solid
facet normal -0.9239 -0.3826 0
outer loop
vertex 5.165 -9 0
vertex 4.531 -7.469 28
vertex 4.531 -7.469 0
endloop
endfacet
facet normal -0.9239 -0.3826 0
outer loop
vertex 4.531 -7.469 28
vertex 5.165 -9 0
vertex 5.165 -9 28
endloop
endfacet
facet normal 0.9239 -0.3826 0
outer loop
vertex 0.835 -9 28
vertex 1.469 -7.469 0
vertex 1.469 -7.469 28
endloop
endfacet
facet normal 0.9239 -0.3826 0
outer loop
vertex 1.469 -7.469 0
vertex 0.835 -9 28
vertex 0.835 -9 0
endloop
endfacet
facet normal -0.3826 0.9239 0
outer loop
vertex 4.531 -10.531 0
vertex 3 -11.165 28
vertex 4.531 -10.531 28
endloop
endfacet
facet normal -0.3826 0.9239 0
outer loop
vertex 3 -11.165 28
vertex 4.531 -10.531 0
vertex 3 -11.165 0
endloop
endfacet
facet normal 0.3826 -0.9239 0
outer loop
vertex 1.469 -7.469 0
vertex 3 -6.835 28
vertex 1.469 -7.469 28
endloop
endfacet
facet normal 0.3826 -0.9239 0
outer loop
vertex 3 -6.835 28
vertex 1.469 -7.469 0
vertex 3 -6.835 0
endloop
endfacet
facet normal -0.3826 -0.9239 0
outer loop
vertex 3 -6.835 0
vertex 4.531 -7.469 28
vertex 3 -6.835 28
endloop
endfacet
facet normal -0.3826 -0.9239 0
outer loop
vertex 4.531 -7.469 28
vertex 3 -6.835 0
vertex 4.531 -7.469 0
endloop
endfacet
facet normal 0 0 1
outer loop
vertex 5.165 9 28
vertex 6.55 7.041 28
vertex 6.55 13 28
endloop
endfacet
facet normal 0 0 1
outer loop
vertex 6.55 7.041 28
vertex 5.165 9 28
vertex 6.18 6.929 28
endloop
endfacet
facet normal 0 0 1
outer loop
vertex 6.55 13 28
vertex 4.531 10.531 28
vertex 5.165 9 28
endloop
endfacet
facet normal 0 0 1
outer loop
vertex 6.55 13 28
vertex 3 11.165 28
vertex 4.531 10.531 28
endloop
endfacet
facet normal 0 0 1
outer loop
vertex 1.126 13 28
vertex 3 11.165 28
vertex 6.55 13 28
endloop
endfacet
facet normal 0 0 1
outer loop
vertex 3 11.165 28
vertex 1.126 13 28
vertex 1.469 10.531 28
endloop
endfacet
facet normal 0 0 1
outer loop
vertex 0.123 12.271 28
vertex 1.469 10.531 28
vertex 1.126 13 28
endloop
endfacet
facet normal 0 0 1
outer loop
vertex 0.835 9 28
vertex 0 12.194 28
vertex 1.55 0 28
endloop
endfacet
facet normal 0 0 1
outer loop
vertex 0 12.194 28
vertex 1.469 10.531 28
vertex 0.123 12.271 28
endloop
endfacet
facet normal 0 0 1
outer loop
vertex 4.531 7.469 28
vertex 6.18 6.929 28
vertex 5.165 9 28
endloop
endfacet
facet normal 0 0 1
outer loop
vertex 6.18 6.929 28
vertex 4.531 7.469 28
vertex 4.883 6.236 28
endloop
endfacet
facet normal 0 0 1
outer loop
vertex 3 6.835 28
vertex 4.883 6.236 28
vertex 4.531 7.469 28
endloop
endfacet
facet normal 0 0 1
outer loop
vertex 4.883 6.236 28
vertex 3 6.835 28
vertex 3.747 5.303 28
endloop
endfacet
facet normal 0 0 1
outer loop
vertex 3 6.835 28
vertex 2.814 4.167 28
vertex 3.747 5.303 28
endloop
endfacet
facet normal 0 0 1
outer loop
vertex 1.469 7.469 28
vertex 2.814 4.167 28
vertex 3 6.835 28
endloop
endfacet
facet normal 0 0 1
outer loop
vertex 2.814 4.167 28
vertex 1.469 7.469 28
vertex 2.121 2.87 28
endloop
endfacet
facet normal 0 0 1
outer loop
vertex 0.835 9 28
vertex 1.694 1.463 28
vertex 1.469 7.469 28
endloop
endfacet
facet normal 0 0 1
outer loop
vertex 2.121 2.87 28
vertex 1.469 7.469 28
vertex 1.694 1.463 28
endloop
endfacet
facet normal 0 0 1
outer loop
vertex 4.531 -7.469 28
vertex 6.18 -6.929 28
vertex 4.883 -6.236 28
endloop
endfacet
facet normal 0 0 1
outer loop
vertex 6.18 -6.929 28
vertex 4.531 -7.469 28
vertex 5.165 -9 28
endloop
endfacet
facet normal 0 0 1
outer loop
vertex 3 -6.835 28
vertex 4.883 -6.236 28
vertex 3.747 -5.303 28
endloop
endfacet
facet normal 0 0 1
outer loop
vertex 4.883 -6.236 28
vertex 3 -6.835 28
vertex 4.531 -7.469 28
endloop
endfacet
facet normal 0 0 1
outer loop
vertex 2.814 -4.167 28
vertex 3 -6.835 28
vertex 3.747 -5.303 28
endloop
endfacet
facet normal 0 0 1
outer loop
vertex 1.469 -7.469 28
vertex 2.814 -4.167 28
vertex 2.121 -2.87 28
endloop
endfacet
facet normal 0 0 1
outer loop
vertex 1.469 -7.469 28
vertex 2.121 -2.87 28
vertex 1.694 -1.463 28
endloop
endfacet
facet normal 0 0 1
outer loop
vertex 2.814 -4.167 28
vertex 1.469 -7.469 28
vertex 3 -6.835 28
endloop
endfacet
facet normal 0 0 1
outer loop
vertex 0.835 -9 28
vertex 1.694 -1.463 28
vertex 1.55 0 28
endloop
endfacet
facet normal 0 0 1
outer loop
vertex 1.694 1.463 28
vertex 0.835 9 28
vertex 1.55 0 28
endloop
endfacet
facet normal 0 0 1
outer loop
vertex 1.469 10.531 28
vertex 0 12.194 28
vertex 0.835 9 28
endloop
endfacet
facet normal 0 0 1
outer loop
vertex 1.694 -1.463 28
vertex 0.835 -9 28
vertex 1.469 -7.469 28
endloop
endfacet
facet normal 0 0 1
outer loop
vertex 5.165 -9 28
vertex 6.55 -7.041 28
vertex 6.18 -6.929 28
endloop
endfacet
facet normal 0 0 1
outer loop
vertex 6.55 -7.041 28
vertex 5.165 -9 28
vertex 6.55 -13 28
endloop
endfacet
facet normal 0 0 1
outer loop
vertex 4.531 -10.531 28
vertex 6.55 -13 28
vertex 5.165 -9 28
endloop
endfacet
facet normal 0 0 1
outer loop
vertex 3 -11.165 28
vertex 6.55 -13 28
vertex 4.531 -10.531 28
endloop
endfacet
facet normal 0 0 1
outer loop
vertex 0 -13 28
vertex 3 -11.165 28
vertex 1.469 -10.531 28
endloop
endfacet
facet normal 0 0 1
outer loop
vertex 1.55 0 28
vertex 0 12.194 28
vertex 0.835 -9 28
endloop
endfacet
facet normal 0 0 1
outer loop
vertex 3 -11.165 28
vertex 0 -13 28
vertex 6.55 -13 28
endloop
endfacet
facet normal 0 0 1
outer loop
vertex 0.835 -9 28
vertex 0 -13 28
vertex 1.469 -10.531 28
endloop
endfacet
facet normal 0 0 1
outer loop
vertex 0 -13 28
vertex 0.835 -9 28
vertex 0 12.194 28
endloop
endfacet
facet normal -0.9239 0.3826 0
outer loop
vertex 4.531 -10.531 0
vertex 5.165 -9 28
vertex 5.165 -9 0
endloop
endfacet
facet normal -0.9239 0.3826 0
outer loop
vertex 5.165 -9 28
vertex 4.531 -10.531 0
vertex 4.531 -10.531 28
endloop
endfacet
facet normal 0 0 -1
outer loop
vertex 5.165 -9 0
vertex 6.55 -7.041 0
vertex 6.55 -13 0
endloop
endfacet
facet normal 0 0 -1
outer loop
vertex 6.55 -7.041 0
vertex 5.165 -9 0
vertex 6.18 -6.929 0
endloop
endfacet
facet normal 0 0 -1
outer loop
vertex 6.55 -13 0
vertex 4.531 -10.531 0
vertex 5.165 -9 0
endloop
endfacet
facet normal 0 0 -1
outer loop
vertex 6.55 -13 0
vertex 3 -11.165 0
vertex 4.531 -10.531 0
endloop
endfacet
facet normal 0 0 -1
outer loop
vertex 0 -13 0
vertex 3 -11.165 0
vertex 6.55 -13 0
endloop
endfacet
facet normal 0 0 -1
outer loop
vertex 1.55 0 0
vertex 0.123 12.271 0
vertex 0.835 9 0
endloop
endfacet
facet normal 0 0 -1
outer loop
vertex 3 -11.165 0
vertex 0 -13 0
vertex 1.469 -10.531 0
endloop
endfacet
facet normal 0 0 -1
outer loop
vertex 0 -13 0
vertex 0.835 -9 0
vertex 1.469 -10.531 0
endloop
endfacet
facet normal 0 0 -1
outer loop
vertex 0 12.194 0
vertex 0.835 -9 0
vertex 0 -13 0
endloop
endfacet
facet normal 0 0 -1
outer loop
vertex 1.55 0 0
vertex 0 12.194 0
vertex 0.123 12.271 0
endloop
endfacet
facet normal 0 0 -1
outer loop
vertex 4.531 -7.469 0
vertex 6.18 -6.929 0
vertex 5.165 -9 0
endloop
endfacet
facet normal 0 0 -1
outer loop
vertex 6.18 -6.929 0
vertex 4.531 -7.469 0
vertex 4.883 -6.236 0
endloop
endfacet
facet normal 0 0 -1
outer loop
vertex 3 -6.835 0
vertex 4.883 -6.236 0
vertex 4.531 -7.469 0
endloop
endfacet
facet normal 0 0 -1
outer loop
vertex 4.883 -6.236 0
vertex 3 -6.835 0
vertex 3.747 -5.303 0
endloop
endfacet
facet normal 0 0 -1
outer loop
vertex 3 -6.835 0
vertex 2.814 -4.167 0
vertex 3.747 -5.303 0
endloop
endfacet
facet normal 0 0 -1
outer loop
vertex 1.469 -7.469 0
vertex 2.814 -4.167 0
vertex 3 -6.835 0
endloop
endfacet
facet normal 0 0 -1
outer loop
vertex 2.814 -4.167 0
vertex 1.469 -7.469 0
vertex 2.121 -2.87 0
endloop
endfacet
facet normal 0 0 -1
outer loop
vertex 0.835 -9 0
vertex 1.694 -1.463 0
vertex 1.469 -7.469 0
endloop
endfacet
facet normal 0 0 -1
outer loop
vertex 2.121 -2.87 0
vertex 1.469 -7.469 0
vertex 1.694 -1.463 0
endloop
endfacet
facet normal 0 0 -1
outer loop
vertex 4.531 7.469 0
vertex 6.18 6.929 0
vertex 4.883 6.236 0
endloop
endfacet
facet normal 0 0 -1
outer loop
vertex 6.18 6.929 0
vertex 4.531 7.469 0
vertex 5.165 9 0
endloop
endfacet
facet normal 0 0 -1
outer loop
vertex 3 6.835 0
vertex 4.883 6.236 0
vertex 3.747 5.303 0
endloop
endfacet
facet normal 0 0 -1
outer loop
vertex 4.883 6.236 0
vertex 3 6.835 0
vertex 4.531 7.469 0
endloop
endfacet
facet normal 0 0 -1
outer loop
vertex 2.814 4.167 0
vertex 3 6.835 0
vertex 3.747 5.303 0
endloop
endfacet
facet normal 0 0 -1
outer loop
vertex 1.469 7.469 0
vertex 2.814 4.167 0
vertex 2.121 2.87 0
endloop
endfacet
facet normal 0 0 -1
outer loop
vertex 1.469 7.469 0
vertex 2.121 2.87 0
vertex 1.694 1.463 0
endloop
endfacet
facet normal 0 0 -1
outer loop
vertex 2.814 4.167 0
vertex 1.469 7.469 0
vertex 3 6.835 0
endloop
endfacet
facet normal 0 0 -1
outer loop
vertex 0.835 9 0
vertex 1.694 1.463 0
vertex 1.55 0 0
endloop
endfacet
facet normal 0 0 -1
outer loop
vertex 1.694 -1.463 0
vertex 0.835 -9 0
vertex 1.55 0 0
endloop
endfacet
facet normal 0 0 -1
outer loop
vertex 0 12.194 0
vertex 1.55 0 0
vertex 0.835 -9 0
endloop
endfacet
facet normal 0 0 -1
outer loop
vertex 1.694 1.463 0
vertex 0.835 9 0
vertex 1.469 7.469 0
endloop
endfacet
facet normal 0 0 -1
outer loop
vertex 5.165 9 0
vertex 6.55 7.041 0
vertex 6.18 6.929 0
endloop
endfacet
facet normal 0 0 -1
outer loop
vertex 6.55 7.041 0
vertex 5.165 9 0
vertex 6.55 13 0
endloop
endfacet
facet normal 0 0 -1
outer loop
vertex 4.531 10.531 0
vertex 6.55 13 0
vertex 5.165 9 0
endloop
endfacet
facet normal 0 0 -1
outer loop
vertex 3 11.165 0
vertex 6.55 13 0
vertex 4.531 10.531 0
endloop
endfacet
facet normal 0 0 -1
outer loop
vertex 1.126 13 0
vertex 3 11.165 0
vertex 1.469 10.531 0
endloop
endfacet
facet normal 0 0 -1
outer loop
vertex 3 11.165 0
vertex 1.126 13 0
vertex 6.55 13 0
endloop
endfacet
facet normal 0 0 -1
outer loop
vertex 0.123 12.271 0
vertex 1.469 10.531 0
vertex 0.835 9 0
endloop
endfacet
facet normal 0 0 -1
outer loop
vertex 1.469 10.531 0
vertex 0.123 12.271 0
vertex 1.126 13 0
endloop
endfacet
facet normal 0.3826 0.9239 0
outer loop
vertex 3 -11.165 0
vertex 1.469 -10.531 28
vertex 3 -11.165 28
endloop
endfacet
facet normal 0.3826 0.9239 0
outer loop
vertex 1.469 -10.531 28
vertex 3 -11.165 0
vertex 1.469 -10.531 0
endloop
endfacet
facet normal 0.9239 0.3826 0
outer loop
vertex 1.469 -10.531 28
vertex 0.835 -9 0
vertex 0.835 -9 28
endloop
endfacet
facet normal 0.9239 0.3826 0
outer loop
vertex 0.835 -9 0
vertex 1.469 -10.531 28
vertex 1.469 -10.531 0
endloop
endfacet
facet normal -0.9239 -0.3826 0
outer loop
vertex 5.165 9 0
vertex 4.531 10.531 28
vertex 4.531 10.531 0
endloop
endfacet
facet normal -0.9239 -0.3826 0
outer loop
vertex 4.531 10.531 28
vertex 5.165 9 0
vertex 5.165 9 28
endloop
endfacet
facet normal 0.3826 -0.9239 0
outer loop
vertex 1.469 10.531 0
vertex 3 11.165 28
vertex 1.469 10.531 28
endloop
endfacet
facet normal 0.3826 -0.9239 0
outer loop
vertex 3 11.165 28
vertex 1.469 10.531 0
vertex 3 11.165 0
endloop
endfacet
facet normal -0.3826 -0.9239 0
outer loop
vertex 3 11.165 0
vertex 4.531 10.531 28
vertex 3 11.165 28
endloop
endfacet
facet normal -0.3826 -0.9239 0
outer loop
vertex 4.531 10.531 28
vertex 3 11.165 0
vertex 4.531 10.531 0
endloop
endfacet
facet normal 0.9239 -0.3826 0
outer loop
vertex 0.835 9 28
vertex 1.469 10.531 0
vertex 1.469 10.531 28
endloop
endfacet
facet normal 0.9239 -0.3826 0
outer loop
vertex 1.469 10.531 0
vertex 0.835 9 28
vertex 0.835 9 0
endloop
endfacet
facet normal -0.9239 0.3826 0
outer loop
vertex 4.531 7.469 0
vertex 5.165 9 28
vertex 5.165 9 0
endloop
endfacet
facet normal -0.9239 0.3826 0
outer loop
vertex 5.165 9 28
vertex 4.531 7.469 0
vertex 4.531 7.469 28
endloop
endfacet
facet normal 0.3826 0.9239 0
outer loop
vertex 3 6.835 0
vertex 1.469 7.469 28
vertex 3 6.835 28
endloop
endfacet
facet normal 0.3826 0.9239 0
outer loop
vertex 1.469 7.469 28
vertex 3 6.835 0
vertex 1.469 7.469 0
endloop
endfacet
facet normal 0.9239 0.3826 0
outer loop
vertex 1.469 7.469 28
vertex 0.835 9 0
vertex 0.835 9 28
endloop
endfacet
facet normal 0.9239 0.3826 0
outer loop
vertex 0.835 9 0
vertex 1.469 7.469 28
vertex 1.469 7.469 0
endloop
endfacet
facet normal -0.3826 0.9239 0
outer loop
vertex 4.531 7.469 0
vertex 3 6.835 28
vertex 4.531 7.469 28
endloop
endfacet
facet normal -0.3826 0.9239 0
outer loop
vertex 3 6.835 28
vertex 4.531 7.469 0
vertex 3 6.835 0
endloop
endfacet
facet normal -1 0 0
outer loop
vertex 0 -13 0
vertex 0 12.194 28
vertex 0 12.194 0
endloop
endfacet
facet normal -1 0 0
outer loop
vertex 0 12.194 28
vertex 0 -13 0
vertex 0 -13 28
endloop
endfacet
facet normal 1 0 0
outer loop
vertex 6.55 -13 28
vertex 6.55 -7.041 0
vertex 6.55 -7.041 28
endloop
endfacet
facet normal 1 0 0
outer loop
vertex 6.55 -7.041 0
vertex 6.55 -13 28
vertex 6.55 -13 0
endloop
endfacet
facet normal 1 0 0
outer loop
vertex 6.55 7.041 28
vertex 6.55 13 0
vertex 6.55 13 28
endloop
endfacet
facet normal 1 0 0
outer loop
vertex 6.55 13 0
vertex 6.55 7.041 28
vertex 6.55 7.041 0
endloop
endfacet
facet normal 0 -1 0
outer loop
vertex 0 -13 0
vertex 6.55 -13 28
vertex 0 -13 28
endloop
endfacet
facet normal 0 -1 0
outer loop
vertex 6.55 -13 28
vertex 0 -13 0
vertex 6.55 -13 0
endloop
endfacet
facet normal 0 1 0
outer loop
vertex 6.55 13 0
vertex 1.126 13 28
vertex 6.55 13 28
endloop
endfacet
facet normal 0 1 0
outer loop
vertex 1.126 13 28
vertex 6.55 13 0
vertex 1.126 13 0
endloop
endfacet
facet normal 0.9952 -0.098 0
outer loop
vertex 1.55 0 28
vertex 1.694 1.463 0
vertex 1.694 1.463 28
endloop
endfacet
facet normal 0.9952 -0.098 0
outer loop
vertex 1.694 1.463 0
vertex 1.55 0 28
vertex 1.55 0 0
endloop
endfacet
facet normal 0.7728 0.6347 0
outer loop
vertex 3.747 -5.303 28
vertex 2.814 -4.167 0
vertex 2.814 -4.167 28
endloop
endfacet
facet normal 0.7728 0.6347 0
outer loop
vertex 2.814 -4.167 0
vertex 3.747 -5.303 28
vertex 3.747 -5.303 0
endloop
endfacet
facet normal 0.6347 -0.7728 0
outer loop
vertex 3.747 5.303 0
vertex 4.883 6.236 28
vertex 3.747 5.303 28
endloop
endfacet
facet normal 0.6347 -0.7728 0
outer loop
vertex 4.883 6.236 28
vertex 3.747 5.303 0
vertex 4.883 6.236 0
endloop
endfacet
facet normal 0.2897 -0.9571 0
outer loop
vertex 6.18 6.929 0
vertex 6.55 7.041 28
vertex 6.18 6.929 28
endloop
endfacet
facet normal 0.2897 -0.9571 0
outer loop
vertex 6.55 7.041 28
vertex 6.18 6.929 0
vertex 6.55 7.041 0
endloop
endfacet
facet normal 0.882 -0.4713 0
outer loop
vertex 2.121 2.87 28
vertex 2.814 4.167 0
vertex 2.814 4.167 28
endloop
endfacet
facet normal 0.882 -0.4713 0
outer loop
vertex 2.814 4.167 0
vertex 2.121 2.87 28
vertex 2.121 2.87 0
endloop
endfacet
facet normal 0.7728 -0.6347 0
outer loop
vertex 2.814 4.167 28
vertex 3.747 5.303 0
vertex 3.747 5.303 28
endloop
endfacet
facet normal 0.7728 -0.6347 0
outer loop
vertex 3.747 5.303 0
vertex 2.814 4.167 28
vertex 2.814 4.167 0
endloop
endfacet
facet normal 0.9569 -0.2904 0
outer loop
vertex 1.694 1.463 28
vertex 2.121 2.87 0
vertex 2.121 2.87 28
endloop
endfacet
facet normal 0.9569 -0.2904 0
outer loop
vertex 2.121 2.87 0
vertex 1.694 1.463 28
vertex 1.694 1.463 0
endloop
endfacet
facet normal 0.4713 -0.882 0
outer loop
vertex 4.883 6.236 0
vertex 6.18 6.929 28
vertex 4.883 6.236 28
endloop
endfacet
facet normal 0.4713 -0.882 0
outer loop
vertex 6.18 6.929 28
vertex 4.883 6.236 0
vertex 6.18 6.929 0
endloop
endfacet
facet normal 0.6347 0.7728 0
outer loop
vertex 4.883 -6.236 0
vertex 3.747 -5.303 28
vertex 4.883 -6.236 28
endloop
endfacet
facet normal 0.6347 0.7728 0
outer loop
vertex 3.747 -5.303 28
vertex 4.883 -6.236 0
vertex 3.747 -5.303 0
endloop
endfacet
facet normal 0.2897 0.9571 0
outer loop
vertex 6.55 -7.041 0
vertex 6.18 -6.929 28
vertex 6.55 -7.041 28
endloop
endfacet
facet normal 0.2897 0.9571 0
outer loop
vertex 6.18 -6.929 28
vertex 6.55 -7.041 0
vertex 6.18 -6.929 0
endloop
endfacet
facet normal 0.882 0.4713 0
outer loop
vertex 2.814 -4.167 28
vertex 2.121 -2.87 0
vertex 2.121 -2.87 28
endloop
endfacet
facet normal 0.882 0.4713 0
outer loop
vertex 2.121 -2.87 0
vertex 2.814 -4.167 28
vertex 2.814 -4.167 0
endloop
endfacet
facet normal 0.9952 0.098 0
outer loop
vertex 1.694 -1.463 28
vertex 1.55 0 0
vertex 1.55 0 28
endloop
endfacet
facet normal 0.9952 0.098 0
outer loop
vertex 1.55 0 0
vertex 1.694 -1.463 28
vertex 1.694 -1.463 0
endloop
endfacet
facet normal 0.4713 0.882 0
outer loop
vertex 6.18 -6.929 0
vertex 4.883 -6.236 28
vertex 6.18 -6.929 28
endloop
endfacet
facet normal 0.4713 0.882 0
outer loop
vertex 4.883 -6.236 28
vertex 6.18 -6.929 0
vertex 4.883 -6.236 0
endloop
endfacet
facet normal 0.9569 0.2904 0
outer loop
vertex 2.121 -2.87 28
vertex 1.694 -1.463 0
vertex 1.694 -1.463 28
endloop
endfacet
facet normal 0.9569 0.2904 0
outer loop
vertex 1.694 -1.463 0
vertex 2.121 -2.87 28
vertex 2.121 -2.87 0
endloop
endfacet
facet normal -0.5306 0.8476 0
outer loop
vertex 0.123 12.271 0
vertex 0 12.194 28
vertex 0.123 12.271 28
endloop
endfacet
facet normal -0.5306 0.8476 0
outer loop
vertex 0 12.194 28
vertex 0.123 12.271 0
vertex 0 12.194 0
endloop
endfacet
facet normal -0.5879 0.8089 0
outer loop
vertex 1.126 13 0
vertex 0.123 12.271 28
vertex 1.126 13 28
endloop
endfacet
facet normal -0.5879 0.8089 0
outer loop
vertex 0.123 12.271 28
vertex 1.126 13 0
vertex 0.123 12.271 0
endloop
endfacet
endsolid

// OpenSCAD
// file: ../../trunctear.scad
//A module for truncated tear drops.

trunctear(1, 0.5, $fn = 90);

module trunctear(hei, radian, cent = false)
{
    linear_extrude(height = hei, center = cent)
        hull()
        {
            circle(r = radian);
            translate([0, radian/2])
                square([2*(radian*(2*cos(45)-1)), radian], center = true);
        }
}
// file: ../../polyhole.scad
// The Cylinder is dead! Long live the Cylinder!
// A module for a polyhole by radius, based on Nophead's work.

module polyhole(h, r, cent = false)
{
    n = max(round(4 * r), 3);
    cylinder(h = h, r = r / cos(180 / n), $fn = n, center = cent);
}
// main file
use<../../polyhole.scad>
use<../../trunctear.scad>

Spacer();

module Spacer()
{
    difference()
    {
        union()
        {
            translate([(60-(42.3+4.6))/4, 0, (28)/2])
                cube([(60-(42.3+4.6))/2, 20+6, 28], center = true);
        }
        translate([65/2-(42.3+4.6)/2, 0, 0])
            cylinder(h = 28, r = 15/2, $fn = 32);
        for(i = [-1 : 2 : 1])
            translate([3, i*9, 0])
                polyhole(28, 2);
        translate([-(42.3+4.6)/2+31/2-4.6/2, -(20+6)/2+4+42.3/2+31/2, 0])
            cylinder(h = 28, r = 17.05+1.5, $fn = 90);
    }
}
